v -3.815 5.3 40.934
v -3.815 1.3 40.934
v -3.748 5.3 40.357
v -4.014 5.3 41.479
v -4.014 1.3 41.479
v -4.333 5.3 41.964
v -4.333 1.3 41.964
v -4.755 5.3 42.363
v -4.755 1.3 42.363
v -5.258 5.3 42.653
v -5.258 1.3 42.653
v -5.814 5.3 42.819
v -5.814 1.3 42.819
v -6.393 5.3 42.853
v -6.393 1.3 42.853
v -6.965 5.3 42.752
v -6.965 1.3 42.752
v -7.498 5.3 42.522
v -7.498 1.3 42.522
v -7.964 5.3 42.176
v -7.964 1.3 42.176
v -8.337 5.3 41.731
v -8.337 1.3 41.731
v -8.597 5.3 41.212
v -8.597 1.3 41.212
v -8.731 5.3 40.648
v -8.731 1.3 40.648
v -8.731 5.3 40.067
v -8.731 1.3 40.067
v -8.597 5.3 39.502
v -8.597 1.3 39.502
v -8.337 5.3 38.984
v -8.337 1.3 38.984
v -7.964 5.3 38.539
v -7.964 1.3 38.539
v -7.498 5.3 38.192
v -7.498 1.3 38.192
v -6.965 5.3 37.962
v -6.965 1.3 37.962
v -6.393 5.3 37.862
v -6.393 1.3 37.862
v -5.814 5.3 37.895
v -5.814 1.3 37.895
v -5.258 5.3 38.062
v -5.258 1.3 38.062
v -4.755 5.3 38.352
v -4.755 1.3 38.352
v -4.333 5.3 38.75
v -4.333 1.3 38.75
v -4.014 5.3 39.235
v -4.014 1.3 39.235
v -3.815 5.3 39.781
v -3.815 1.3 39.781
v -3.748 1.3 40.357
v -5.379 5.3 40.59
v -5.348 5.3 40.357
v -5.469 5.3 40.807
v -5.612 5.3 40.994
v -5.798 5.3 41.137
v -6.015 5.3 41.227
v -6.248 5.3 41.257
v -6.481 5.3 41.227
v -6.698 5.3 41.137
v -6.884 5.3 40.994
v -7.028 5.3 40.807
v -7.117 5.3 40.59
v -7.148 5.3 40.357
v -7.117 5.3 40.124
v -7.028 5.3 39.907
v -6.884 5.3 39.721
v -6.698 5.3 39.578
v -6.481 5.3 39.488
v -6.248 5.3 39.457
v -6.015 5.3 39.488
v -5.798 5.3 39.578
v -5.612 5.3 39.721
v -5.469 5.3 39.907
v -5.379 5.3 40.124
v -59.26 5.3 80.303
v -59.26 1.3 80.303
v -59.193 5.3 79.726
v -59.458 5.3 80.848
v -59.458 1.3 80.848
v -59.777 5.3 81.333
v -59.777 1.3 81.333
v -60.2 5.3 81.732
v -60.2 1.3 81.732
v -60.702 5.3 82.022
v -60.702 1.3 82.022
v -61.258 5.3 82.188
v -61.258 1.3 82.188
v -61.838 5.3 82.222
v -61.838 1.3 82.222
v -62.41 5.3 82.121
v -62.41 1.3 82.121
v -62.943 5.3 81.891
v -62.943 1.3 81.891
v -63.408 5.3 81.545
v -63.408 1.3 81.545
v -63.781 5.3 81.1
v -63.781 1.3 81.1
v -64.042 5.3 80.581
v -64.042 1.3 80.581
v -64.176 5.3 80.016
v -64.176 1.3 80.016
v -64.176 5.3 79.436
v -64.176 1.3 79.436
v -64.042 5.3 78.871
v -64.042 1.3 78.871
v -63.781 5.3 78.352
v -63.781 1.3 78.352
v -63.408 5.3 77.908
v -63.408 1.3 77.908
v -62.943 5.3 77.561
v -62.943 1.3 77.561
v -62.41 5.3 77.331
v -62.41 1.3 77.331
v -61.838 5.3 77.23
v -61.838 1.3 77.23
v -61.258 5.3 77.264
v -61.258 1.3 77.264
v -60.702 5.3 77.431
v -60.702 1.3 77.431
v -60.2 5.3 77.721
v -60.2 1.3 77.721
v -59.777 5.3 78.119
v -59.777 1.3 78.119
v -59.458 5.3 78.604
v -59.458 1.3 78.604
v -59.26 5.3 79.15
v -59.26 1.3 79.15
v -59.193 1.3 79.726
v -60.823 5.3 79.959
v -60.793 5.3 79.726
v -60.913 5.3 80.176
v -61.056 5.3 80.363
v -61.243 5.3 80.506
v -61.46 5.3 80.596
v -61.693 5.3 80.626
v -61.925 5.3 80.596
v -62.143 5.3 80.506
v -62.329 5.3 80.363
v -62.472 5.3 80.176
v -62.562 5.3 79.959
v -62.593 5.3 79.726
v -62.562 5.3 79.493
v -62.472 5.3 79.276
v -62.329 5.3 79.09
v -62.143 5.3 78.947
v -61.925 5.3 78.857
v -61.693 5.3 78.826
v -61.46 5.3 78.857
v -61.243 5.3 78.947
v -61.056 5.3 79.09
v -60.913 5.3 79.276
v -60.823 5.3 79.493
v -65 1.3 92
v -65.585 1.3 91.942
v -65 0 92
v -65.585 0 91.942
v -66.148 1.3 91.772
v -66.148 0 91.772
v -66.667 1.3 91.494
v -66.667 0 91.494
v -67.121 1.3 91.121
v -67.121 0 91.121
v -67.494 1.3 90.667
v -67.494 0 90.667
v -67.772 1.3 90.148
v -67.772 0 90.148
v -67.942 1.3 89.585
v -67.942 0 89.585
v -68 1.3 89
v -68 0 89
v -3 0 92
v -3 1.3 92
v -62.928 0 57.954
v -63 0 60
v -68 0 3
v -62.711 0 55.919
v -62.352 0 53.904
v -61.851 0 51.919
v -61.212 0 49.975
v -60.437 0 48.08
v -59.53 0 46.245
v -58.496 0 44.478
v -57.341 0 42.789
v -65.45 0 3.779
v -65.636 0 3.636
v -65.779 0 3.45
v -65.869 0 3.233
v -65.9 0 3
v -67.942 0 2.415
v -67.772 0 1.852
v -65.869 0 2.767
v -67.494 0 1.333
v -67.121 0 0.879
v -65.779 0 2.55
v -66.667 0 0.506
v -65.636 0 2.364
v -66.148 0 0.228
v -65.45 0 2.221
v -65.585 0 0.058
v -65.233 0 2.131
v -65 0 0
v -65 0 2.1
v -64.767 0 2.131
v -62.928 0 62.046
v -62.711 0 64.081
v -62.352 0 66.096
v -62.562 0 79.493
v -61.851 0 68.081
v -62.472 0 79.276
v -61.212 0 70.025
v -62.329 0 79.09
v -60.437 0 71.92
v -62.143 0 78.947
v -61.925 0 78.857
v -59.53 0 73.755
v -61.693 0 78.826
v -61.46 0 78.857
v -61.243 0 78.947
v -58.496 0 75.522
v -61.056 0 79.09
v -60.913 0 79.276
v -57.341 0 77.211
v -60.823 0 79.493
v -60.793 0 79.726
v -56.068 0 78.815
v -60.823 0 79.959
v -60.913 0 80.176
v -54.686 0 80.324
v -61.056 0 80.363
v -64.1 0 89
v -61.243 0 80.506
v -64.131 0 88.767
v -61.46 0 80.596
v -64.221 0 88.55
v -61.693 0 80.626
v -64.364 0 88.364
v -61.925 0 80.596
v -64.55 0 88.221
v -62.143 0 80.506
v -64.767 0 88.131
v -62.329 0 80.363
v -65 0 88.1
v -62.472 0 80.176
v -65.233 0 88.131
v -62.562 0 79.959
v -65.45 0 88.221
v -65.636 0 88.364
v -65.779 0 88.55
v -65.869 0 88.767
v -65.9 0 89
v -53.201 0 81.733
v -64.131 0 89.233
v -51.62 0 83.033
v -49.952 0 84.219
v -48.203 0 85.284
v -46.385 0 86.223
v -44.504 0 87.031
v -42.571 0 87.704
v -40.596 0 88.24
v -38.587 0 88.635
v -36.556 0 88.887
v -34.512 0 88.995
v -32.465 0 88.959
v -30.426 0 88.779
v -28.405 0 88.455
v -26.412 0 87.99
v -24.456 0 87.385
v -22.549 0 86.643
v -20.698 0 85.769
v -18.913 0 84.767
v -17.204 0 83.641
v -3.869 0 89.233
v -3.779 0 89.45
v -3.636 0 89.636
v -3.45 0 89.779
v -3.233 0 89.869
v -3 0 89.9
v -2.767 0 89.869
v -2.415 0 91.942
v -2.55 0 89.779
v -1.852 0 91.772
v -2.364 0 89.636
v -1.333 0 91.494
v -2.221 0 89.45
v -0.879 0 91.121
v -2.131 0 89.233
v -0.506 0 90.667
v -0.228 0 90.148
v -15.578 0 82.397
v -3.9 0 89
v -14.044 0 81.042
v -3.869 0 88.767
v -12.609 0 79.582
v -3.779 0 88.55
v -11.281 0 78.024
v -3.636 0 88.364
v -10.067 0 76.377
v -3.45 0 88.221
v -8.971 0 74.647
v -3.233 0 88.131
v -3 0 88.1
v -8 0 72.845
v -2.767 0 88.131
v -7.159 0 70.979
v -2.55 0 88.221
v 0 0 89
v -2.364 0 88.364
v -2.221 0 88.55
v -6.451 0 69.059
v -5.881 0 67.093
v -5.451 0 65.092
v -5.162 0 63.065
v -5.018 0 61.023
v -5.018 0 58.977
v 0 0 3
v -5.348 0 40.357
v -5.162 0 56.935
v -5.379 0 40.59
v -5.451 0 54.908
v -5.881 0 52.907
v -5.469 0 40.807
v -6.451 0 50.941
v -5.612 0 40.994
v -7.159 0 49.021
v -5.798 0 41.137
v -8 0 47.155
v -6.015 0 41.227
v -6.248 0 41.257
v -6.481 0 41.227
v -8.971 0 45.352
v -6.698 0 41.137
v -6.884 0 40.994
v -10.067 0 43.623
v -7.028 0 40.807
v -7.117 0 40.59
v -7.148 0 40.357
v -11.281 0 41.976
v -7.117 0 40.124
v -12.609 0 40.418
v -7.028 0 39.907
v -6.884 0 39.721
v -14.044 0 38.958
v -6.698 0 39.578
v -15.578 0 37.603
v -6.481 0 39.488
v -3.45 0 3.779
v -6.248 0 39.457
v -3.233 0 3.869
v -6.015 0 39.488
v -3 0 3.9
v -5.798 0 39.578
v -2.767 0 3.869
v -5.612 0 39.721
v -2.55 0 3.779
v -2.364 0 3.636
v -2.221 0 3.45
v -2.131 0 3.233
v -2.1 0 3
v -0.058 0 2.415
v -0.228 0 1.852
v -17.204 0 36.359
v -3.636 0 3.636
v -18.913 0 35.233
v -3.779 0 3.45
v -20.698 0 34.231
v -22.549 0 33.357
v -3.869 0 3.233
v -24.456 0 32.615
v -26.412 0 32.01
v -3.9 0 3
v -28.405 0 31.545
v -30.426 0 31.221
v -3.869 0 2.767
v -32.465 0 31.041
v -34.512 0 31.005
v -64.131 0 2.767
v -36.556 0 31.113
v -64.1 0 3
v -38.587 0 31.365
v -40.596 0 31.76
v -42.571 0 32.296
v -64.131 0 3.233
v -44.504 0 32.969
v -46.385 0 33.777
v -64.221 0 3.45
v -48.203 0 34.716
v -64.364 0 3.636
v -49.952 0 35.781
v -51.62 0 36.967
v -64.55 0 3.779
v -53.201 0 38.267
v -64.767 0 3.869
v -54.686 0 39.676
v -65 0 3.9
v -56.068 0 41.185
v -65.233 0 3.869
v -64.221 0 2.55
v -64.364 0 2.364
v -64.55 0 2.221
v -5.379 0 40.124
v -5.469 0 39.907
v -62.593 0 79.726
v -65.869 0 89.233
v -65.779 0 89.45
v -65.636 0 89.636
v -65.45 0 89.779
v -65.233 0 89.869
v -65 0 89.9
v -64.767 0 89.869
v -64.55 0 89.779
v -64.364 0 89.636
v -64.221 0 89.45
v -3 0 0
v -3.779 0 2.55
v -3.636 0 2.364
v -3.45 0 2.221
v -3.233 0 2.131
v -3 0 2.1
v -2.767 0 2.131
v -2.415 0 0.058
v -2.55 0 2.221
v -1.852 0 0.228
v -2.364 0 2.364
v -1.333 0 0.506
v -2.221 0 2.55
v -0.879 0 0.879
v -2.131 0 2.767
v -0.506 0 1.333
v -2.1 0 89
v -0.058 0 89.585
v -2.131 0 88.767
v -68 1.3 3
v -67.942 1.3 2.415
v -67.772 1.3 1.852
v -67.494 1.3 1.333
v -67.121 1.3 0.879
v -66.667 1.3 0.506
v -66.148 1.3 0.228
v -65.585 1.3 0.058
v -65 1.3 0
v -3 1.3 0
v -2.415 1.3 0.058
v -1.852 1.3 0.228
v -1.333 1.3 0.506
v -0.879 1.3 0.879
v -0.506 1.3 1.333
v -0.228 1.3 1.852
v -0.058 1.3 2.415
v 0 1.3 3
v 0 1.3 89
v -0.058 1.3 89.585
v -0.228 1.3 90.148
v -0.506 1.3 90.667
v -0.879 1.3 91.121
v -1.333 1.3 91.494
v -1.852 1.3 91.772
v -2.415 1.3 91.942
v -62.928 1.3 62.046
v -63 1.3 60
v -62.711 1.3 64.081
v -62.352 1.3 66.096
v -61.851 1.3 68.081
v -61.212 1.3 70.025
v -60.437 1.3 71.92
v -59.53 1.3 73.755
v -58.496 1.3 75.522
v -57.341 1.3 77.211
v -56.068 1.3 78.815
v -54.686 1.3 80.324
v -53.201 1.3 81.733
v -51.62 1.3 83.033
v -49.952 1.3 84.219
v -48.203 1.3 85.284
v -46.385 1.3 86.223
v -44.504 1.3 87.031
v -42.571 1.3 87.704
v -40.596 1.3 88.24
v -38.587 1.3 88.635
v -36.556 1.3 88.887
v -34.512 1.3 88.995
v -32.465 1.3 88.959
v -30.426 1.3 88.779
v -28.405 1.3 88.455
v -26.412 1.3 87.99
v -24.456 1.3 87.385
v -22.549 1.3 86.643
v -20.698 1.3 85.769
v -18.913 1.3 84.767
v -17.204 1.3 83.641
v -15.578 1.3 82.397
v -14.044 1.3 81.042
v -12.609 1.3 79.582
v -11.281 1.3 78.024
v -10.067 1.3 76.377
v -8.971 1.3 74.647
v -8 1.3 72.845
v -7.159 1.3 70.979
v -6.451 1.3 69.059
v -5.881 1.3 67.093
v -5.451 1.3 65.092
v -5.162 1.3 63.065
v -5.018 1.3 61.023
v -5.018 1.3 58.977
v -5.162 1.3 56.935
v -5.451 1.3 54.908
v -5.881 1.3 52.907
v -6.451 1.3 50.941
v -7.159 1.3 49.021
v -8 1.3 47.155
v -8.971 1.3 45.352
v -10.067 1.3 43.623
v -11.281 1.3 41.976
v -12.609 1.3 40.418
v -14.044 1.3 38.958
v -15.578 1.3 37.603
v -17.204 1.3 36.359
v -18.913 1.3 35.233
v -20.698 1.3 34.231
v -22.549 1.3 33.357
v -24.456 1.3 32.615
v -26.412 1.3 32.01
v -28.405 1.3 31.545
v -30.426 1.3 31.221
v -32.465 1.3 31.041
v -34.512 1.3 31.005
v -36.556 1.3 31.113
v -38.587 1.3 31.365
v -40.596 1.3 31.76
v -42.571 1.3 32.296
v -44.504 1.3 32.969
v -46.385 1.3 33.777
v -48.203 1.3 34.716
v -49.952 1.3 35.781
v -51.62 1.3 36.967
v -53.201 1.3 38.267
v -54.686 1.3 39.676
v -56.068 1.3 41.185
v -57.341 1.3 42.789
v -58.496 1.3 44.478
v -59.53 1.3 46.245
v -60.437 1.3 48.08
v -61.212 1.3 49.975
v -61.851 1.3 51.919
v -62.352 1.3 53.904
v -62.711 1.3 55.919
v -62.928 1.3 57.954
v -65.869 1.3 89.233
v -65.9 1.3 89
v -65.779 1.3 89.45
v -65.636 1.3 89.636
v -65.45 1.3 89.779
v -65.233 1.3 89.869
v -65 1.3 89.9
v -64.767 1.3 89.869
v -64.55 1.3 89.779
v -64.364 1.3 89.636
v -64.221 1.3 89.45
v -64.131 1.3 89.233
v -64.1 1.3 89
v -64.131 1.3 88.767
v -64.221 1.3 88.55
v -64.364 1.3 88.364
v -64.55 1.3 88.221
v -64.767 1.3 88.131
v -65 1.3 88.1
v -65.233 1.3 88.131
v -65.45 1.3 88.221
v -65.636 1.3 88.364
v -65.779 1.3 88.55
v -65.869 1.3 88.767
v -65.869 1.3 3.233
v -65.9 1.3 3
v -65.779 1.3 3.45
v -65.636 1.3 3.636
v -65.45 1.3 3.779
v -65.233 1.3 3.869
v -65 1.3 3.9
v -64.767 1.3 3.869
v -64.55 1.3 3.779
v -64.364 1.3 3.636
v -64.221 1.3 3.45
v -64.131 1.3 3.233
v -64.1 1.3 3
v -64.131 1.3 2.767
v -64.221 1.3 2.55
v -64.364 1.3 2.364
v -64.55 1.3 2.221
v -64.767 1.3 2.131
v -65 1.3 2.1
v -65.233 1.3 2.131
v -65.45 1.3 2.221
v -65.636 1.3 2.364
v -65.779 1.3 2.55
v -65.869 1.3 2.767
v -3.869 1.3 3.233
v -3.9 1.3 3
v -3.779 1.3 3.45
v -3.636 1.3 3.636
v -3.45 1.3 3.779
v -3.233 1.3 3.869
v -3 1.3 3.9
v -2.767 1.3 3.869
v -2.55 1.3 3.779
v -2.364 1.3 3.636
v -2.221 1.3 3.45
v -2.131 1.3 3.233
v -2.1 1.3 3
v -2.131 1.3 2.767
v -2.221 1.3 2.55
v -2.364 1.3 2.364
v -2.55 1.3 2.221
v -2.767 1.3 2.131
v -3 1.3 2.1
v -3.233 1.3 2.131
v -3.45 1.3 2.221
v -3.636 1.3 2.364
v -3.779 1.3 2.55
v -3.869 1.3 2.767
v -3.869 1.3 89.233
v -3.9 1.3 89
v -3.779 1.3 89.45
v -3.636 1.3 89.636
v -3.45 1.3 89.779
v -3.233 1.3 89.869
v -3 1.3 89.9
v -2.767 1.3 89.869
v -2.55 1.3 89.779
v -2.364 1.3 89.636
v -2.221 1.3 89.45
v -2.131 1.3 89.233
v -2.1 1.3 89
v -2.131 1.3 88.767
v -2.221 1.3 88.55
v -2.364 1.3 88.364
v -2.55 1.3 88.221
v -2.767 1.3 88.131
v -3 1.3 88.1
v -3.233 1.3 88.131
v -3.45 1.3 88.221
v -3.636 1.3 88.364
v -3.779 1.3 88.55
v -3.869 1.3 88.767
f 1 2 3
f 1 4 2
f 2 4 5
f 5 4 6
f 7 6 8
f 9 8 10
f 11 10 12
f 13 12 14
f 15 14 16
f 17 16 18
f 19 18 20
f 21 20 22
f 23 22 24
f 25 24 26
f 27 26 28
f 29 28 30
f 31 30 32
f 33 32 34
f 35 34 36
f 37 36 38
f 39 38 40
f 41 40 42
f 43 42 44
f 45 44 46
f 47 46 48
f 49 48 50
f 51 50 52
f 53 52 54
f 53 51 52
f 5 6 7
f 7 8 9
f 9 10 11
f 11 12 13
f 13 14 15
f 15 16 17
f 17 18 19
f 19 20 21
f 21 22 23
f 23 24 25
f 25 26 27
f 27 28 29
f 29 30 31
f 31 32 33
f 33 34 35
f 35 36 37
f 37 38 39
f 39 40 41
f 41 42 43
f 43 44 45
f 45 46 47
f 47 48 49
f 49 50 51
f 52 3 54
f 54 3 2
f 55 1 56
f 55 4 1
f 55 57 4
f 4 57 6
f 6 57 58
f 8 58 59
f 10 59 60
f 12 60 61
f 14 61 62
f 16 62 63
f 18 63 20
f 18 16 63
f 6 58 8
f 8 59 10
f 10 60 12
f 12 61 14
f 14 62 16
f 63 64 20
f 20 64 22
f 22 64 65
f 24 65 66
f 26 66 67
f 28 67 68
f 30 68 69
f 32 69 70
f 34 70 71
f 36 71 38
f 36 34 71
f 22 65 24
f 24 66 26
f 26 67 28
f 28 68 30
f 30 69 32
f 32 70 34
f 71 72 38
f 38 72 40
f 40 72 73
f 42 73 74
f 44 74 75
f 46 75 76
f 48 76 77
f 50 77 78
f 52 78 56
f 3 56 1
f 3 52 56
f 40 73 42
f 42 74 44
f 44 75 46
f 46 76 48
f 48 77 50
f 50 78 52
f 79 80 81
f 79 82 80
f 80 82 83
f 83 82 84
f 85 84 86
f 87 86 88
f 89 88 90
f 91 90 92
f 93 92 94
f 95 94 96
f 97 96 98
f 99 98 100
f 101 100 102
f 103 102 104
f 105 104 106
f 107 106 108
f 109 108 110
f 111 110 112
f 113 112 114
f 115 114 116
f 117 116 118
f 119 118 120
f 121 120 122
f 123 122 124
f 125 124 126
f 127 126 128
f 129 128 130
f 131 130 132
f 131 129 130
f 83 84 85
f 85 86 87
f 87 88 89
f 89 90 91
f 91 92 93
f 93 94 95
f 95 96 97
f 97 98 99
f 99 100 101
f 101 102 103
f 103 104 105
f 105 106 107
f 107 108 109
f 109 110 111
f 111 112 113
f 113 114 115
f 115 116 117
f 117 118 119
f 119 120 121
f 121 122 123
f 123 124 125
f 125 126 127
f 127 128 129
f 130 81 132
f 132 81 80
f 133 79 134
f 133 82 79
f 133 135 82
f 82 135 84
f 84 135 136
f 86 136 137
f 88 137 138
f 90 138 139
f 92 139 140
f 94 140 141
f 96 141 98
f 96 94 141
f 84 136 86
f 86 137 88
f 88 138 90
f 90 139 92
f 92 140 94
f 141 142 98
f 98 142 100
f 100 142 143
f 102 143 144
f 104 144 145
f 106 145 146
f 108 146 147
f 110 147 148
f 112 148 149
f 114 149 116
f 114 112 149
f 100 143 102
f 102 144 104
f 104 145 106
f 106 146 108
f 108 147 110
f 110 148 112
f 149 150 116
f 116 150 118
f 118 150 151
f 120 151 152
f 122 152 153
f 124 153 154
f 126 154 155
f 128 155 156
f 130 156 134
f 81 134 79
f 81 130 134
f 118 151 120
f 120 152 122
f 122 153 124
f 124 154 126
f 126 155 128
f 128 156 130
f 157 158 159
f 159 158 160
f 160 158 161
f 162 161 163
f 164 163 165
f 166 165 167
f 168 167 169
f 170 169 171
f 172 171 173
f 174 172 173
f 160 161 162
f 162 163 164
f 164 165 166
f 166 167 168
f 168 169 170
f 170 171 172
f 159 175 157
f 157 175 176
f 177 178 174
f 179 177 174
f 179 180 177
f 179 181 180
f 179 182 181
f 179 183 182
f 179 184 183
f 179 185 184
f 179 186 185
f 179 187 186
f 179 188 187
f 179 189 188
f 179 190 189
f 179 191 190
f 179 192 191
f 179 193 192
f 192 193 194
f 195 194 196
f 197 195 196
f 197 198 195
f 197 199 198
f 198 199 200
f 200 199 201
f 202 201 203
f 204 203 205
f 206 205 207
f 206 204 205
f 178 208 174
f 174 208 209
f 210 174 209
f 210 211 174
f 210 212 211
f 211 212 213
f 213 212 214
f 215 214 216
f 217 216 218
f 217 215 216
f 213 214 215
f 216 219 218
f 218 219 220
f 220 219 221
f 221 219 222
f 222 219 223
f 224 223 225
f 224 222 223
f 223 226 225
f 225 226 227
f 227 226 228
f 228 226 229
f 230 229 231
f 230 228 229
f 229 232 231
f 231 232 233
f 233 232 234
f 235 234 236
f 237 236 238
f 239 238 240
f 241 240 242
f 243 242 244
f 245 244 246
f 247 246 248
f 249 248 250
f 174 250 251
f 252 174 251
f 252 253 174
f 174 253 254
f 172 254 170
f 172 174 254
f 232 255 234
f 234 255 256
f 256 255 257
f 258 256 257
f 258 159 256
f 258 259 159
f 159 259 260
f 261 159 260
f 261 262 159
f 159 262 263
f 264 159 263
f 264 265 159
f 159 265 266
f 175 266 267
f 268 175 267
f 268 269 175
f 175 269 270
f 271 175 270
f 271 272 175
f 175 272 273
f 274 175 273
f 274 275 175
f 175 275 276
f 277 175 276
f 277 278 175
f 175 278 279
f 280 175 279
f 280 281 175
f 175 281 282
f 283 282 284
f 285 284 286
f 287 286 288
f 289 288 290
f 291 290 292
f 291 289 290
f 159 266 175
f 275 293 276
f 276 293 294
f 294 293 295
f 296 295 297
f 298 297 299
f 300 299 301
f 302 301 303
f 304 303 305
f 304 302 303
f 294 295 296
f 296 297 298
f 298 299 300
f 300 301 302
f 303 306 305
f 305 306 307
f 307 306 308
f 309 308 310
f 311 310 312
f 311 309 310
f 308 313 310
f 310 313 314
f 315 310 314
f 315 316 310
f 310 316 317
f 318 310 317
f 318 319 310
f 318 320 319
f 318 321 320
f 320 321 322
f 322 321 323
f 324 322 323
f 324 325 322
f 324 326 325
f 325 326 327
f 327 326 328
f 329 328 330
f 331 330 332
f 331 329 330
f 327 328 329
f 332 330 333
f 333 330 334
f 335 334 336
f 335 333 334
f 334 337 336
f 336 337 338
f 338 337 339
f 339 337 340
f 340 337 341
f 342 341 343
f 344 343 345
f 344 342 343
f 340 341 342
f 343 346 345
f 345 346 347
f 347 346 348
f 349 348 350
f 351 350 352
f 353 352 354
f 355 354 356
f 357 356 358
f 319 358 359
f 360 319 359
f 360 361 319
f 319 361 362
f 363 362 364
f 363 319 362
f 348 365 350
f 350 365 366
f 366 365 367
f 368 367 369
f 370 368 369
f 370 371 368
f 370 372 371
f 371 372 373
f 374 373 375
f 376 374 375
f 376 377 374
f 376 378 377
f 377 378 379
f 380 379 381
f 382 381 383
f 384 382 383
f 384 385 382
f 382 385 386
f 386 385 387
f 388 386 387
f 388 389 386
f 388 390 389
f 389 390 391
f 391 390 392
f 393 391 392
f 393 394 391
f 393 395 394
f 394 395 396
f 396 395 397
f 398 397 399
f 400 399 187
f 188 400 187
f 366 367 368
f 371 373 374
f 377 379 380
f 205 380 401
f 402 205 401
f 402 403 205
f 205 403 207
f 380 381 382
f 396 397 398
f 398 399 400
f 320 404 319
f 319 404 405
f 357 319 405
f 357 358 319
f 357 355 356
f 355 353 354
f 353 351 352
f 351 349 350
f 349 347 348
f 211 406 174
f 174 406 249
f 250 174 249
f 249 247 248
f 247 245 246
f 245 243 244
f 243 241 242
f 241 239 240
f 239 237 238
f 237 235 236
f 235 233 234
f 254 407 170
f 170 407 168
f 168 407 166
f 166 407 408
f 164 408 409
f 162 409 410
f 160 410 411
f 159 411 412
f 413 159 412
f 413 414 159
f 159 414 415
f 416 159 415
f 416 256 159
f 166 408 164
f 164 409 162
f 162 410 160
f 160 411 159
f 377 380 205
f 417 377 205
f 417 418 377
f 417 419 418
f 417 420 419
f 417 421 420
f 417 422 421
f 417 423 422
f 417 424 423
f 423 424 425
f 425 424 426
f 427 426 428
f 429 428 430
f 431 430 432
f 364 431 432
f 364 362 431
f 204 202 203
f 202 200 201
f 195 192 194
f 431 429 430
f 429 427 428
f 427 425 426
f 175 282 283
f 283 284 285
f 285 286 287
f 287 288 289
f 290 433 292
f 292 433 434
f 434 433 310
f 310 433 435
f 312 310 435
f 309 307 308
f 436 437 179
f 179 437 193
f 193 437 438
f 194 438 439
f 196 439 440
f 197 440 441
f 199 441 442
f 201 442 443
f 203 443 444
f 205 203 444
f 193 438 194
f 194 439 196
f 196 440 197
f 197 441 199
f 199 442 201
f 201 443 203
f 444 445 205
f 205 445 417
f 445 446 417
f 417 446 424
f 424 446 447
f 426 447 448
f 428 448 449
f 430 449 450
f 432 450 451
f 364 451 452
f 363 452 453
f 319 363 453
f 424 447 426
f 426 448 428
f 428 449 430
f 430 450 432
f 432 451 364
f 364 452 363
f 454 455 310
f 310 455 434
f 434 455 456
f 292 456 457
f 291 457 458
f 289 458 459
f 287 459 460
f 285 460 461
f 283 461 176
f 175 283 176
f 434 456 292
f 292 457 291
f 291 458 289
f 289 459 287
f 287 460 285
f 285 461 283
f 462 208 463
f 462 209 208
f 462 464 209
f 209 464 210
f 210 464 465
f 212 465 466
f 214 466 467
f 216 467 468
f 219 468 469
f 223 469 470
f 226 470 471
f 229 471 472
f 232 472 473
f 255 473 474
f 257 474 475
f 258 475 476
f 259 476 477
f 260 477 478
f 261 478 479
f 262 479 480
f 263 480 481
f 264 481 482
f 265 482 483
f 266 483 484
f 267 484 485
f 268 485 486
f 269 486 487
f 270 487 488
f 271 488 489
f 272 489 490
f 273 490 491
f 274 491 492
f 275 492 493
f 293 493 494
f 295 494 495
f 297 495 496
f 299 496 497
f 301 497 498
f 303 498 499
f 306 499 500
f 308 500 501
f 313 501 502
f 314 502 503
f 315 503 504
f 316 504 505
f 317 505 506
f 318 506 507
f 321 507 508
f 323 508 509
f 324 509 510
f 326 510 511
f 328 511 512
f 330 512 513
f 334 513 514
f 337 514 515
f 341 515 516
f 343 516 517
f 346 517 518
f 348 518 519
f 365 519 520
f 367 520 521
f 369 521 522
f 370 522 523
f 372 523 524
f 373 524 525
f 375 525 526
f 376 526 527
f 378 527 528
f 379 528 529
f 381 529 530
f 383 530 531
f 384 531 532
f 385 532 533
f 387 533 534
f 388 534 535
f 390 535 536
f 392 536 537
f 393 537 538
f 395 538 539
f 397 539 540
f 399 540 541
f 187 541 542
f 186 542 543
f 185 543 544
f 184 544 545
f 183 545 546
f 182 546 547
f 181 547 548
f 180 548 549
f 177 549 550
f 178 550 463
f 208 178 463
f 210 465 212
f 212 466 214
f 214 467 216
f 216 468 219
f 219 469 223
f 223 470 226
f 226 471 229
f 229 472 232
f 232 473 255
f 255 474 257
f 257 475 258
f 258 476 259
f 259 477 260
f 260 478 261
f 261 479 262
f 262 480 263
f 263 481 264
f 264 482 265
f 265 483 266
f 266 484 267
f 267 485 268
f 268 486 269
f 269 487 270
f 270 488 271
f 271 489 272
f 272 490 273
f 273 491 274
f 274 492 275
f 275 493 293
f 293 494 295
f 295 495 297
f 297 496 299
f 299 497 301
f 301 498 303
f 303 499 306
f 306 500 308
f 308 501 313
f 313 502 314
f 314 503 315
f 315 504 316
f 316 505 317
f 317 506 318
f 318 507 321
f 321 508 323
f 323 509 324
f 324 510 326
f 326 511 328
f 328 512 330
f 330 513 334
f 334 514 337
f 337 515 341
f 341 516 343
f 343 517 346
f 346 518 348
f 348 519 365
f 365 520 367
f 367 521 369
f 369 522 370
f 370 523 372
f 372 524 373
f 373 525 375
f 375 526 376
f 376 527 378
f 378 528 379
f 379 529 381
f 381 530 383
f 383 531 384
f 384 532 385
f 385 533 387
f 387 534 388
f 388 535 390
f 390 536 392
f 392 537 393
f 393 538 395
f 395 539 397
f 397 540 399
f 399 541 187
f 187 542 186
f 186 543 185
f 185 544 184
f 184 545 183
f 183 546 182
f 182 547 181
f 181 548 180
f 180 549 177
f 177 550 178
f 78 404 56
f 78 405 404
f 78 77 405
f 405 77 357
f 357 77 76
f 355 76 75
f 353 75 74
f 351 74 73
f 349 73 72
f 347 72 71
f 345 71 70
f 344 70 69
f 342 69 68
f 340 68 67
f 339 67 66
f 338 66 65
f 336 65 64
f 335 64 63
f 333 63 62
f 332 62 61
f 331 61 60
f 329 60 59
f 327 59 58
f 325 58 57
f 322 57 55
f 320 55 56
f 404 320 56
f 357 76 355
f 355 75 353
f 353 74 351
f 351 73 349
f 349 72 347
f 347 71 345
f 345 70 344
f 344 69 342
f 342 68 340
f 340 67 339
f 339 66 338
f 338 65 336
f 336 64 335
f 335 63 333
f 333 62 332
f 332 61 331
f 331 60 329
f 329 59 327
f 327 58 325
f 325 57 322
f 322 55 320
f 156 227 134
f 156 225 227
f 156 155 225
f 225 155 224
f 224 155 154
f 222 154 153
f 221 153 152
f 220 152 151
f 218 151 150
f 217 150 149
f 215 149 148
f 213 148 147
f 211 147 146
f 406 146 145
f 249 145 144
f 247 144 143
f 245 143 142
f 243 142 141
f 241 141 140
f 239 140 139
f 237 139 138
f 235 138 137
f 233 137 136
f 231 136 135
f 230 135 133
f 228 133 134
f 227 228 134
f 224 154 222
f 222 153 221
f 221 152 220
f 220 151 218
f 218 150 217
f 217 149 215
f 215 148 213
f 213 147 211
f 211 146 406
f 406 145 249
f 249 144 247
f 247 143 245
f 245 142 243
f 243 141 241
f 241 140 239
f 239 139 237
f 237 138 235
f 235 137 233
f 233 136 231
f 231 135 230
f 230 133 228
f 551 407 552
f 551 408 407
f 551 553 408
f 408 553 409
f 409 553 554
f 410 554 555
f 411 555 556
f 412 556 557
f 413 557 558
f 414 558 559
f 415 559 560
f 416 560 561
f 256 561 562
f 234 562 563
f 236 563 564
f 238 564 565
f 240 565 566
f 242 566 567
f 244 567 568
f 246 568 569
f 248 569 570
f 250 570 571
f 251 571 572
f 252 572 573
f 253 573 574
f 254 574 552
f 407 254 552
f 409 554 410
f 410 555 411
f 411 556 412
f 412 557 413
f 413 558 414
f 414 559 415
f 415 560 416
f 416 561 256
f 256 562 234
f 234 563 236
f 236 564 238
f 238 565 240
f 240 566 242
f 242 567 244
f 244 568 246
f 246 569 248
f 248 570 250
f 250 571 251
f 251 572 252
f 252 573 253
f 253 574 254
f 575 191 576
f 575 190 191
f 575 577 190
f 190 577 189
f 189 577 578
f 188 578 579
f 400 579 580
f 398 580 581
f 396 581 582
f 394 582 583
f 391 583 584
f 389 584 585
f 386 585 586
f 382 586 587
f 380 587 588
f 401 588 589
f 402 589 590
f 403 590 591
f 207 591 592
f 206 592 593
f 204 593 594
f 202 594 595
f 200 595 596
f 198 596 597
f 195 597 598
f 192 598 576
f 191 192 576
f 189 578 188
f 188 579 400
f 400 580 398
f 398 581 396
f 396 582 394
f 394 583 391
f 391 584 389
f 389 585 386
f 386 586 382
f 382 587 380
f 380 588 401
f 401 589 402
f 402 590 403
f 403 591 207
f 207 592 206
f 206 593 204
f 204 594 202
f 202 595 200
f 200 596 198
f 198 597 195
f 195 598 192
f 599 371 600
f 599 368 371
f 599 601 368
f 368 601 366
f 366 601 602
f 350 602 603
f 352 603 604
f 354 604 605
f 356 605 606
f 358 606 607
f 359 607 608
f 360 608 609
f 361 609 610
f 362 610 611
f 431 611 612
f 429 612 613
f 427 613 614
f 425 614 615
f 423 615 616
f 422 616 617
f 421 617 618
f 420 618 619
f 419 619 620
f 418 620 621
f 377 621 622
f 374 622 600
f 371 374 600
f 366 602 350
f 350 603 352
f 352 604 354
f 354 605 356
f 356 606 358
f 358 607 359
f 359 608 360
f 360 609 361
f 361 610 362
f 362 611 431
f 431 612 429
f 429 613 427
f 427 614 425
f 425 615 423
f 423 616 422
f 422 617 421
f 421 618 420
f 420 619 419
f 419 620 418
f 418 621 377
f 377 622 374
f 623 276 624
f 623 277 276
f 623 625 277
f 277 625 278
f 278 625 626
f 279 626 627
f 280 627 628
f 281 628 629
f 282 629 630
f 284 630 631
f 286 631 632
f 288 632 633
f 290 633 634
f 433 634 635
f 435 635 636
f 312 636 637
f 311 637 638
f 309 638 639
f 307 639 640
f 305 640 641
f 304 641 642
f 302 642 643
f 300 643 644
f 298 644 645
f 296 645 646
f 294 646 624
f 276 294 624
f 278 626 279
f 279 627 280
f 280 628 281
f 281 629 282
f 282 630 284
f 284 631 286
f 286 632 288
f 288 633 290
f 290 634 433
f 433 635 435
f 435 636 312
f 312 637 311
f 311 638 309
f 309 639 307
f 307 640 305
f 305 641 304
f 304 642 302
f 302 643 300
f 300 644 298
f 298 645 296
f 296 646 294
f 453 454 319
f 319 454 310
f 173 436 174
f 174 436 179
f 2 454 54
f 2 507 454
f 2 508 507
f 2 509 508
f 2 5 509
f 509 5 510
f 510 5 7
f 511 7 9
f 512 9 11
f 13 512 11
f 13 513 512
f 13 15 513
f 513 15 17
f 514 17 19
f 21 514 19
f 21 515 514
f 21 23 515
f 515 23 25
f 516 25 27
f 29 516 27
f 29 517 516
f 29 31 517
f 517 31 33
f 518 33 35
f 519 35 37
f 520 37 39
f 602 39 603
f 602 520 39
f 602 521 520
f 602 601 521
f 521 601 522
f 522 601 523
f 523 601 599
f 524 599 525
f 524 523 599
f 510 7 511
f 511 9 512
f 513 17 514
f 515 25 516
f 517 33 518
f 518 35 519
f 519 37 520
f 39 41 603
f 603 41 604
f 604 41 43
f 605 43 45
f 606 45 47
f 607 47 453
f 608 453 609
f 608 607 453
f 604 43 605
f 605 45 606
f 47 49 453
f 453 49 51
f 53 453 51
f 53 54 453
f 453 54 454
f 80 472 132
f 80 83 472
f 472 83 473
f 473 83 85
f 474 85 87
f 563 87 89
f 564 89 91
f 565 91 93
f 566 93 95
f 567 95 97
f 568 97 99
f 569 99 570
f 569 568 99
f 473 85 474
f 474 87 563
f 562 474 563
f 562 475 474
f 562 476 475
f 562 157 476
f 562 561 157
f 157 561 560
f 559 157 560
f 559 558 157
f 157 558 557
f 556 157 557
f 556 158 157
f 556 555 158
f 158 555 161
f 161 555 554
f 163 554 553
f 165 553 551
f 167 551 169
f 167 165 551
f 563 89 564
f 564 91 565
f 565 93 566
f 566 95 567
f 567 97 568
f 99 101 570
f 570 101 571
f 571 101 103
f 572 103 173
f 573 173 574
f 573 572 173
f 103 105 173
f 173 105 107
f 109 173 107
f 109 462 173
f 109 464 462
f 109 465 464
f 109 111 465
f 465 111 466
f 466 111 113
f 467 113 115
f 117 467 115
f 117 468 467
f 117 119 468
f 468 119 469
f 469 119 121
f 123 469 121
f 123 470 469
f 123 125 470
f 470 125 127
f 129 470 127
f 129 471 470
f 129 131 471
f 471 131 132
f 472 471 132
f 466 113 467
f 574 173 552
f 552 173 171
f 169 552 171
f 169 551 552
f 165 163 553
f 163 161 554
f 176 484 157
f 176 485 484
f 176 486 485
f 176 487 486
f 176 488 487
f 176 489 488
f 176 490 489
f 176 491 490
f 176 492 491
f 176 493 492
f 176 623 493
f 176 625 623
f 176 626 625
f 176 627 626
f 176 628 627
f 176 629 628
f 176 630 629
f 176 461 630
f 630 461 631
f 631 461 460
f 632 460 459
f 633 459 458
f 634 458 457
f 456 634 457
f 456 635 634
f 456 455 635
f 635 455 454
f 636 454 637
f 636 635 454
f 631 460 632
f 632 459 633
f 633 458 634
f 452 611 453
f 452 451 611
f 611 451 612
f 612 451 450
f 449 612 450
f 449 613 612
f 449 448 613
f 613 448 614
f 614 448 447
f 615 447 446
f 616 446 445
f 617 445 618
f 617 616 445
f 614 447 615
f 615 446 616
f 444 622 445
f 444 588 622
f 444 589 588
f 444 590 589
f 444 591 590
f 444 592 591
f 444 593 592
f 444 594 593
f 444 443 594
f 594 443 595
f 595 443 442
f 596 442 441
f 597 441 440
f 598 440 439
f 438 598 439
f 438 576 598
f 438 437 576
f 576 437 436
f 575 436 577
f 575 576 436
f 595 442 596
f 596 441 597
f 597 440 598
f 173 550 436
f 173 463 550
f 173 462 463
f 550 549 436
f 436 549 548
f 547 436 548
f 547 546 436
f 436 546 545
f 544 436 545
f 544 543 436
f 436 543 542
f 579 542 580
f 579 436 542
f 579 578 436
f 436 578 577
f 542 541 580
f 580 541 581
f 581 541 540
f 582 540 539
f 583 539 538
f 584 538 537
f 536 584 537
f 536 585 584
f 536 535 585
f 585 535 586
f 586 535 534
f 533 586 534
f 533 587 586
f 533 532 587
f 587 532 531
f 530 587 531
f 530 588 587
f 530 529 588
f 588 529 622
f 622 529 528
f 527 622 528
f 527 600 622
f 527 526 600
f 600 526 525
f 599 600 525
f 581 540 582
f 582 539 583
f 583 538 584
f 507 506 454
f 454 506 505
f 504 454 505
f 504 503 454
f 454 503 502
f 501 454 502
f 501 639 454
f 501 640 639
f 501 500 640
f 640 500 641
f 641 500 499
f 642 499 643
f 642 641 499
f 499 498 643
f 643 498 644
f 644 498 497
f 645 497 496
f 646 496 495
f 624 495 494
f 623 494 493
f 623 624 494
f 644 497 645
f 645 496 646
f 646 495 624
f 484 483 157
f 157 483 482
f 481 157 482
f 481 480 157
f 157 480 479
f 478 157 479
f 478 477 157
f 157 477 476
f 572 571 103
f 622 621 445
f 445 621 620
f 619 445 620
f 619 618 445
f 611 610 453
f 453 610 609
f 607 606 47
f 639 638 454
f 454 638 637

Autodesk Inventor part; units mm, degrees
ref_plane "YZ Plane" through (0, 0, 0) normal (1, 0, 0) x (0, 1, 0)
ref_plane "XZ Plane" through (0, 0, 0) normal (0, 1, 0) x (-1, 0, 0)
ref_plane "XY Plane" through (0, 0, 0) normal (0, 0, 1) x (1, 0, 0)
sketch "スケッチ1" plane through (0, 0, 0) normal (0, 1, 0) x (-1, 0, 0)
  line L0 (0, 0) -> (68, 0)
  line L1 (68, 0) -> (68, 92)
  line L2 (68, 92) -> (0, 92)
  line L3 (0, 92) -> (0, 0)
  circle A0 centre (3, 89) radius 0.9
  circle A1 centre (3, 3) radius 0.9
  circle A2 centre (65, 3) radius 0.9
  circle A3 centre (65, 89) radius 0.9
  circle A4 centre (34, 60) radius 29
  circle A5 centre (61.6925, 79.7262) radius 0.9
  circle A6 centre (6.2481, 40.3574) radius 0.9
  line L4 (6.2481, 40.3574) -> (71.1751, 86.4594)
  dimension "d0" = 92
  dimension "d1" = 68
  dimension "d2" = 3
  dimension "d3" = 3
  dimension "d4" = 1.8
  dimension "d5" = 1.8
  dimension "d6" = 3
  dimension "d7" = 3
  dimension "d8" = 1.8
  dimension "d9" = 3
  dimension "d10" = 3
  dimension "d11" = 3
  dimension "d12" = 3
  dimension "d13" = 1.8
  dimension "d17" = 58
  dimension "d18" = 32
  dimension "d19" = 34
  dimension "d20" = 1.8
  dimension "d21" = 1.8
  dimension "d24" = 34
  dimension "d25" = 34
extrude "押し出し1" add sketch "スケッチ1" along normal blind 1.3
fillet "フィレット1" radius 3 4 edges at (0, 0.65, 92) (0, 0.65, 0) (-68, 0.65, 0) (-68, 0.65, 92)
sketch "スケッチ2" plane through (0, 1.3, 0) normal (0, 1, 0) x (1, 0, 0)
  circle A0 centre (-6.2481, -40.3574) radius 0.9 projected
  circle A1 centre (-61.6925, -79.7262) radius 0.9 projected
  circle A2 centre (-6.2481, -40.3574) radius 2.5
  circle A3 centre (-61.6925, -79.7262) radius 2.5
  point P0 (0, 0)
  dimension "d26" = 5
  dimension "d27" = 5
extrude "押し出し2" add sketch "スケッチ2" along normal blind 4
sketch "スケッチ3" plane through (0, 1.3, 0) normal (0, 1, 0) x (1, 0, 0)
  line L0 (-45.9767, -23.6507) -> (-43.3974, -22.1186)
  line L1 (-43.3974, -22.1186) -> (-39.3119, -28.9967)
  line L2 (-39.3119, -28.9967) -> (-41.8911, -30.5288)
  line L3 (-41.8911, -30.5288) -> (-45.9767, -23.6507)
  line L4 (-63, -33.7624) -> (-60.4207, -32.2303)
  line L5 (-60.4207, -32.2303) -> (-56.3352, -39.1084)
  line L6 (-56.3352, -39.1084) -> (-58.9145, -40.6405)
  line L7 (-58.9145, -40.6405) -> (-63, -33.7624)
  point P0 (0, 0)
  dimension "d31" = 8
  dimension "d32" = 8
  dimension "d33" = 3
  dimension "d34" = 3
  dimension "d35" = 0
  dimension "d46" = 22.8
extrude "押し出し3" [suppressed]
sketch "スケッチ6" plane through (0, 1.3, 0) normal (0, 1, 0) x (1, 0, 0)
  line L0 (-43.3974, -22.1186) -> (-39.3119, -28.9967) projected
  line L1 (-58.9145, -40.6405) -> (-63, -33.7624) projected
  line L2 (-58.9145, -40.6405) -> (-63, -33.7624)
  line L3 (-63, -33.7624) -> (-64.7195, -34.7838)
  line L4 (-64.7195, -34.7838) -> (-60.634, -41.6619)
  line L5 (-60.634, -41.6619) -> (-58.9145, -40.6405)
  line L6 (-39.3119, -28.9967) -> (-43.3974, -22.1186)
  line L7 (-43.3974, -22.1186) -> (-41.6779, -21.0972)
  line L8 (-41.6779, -21.0972) -> (-37.5923, -27.9753)
  line L9 (-37.5923, -27.9753) -> (-39.3119, -28.9967)
  line L10 (-64.0424, -28.8936) -> (-47.7828, -19.2356)
  line L11 (-47.7828, -19.2356) -> (-47.0244, -20.5124)
  line L12 (-47.0244, -20.5124) -> (-63.284, -30.1705)
  line L13 (-63.284, -30.1705) -> (-64.0424, -28.8936)
  point P0 (0, 0)
  dimension "d47" = 2
  dimension "d48" = 2
extrude "押し出し6" [suppressed]
sketch "スケッチ7" plane through (0, 4.8, 0) normal (0, 1, 0) x (1, 0, 0)
  line L0 (-58.9145, -40.6405) -> (-63, -33.7624) projected
  line L1 (-64.7195, -34.7838) -> (-60.634, -41.6619) projected
  line L2 (-43.3974, -22.1186) -> (-39.3119, -28.9967) projected
  line L3 (-39.3119, -28.9967) -> (-37.5923, -27.9753) projected
  line L4 (-37.5923, -27.9753) -> (-41.6779, -21.0972) projected
  line L5 (-41.6779, -21.0972) -> (-43.3974, -22.1186) projected
  line L6 (-64.7195, -34.7838) -> (-60.634, -41.6619)
  line L7 (-60.634, -41.6619) -> (-58.0547, -40.1298)
  line L8 (-58.0547, -40.1298) -> (-62.1402, -33.2517)
  line L9 (-62.1402, -33.2517) -> (-64.7195, -34.7838)
  line L10 (-41.6779, -21.0972) -> (-37.5461, -28.0532)
  line L11 (-37.5461, -28.0532) -> (-40.1254, -29.5852)
  line L12 (-40.1254, -29.5852) -> (-44.2572, -22.6293)
  line L13 (-44.2572, -22.6293) -> (-41.6779, -21.0972)
  point P0 (0, 0)
  dimension "d51" = 3
  dimension "d52" = 3
extrude "押し出し7" [suppressed]
equation "\"d3\" = d2"
equation "\"d5\" = d4"
equation "\"d6\" = d3"
equation "\"d7\" = d3"
equation "\"d8\" = d4"
equation "\"d9\" = d2"
equation "\"d10\" = d2"
equation "\"d11\" = d2"
equation "\"d12\" = d2"
equation "\"d13\" = d4"
equation "\"d19\" = 0.5 * d1"
equation "\"d21\" = d20"
equation "\"d25\" = d24"
equation "\"d27\" = d26"
equation "\"d32\" = d31"
equation "\"d34\" = d33"
equation "\"d48\" = d47"
equation "\"d52\" = d51"
properties part number "raspi-holder-top"
